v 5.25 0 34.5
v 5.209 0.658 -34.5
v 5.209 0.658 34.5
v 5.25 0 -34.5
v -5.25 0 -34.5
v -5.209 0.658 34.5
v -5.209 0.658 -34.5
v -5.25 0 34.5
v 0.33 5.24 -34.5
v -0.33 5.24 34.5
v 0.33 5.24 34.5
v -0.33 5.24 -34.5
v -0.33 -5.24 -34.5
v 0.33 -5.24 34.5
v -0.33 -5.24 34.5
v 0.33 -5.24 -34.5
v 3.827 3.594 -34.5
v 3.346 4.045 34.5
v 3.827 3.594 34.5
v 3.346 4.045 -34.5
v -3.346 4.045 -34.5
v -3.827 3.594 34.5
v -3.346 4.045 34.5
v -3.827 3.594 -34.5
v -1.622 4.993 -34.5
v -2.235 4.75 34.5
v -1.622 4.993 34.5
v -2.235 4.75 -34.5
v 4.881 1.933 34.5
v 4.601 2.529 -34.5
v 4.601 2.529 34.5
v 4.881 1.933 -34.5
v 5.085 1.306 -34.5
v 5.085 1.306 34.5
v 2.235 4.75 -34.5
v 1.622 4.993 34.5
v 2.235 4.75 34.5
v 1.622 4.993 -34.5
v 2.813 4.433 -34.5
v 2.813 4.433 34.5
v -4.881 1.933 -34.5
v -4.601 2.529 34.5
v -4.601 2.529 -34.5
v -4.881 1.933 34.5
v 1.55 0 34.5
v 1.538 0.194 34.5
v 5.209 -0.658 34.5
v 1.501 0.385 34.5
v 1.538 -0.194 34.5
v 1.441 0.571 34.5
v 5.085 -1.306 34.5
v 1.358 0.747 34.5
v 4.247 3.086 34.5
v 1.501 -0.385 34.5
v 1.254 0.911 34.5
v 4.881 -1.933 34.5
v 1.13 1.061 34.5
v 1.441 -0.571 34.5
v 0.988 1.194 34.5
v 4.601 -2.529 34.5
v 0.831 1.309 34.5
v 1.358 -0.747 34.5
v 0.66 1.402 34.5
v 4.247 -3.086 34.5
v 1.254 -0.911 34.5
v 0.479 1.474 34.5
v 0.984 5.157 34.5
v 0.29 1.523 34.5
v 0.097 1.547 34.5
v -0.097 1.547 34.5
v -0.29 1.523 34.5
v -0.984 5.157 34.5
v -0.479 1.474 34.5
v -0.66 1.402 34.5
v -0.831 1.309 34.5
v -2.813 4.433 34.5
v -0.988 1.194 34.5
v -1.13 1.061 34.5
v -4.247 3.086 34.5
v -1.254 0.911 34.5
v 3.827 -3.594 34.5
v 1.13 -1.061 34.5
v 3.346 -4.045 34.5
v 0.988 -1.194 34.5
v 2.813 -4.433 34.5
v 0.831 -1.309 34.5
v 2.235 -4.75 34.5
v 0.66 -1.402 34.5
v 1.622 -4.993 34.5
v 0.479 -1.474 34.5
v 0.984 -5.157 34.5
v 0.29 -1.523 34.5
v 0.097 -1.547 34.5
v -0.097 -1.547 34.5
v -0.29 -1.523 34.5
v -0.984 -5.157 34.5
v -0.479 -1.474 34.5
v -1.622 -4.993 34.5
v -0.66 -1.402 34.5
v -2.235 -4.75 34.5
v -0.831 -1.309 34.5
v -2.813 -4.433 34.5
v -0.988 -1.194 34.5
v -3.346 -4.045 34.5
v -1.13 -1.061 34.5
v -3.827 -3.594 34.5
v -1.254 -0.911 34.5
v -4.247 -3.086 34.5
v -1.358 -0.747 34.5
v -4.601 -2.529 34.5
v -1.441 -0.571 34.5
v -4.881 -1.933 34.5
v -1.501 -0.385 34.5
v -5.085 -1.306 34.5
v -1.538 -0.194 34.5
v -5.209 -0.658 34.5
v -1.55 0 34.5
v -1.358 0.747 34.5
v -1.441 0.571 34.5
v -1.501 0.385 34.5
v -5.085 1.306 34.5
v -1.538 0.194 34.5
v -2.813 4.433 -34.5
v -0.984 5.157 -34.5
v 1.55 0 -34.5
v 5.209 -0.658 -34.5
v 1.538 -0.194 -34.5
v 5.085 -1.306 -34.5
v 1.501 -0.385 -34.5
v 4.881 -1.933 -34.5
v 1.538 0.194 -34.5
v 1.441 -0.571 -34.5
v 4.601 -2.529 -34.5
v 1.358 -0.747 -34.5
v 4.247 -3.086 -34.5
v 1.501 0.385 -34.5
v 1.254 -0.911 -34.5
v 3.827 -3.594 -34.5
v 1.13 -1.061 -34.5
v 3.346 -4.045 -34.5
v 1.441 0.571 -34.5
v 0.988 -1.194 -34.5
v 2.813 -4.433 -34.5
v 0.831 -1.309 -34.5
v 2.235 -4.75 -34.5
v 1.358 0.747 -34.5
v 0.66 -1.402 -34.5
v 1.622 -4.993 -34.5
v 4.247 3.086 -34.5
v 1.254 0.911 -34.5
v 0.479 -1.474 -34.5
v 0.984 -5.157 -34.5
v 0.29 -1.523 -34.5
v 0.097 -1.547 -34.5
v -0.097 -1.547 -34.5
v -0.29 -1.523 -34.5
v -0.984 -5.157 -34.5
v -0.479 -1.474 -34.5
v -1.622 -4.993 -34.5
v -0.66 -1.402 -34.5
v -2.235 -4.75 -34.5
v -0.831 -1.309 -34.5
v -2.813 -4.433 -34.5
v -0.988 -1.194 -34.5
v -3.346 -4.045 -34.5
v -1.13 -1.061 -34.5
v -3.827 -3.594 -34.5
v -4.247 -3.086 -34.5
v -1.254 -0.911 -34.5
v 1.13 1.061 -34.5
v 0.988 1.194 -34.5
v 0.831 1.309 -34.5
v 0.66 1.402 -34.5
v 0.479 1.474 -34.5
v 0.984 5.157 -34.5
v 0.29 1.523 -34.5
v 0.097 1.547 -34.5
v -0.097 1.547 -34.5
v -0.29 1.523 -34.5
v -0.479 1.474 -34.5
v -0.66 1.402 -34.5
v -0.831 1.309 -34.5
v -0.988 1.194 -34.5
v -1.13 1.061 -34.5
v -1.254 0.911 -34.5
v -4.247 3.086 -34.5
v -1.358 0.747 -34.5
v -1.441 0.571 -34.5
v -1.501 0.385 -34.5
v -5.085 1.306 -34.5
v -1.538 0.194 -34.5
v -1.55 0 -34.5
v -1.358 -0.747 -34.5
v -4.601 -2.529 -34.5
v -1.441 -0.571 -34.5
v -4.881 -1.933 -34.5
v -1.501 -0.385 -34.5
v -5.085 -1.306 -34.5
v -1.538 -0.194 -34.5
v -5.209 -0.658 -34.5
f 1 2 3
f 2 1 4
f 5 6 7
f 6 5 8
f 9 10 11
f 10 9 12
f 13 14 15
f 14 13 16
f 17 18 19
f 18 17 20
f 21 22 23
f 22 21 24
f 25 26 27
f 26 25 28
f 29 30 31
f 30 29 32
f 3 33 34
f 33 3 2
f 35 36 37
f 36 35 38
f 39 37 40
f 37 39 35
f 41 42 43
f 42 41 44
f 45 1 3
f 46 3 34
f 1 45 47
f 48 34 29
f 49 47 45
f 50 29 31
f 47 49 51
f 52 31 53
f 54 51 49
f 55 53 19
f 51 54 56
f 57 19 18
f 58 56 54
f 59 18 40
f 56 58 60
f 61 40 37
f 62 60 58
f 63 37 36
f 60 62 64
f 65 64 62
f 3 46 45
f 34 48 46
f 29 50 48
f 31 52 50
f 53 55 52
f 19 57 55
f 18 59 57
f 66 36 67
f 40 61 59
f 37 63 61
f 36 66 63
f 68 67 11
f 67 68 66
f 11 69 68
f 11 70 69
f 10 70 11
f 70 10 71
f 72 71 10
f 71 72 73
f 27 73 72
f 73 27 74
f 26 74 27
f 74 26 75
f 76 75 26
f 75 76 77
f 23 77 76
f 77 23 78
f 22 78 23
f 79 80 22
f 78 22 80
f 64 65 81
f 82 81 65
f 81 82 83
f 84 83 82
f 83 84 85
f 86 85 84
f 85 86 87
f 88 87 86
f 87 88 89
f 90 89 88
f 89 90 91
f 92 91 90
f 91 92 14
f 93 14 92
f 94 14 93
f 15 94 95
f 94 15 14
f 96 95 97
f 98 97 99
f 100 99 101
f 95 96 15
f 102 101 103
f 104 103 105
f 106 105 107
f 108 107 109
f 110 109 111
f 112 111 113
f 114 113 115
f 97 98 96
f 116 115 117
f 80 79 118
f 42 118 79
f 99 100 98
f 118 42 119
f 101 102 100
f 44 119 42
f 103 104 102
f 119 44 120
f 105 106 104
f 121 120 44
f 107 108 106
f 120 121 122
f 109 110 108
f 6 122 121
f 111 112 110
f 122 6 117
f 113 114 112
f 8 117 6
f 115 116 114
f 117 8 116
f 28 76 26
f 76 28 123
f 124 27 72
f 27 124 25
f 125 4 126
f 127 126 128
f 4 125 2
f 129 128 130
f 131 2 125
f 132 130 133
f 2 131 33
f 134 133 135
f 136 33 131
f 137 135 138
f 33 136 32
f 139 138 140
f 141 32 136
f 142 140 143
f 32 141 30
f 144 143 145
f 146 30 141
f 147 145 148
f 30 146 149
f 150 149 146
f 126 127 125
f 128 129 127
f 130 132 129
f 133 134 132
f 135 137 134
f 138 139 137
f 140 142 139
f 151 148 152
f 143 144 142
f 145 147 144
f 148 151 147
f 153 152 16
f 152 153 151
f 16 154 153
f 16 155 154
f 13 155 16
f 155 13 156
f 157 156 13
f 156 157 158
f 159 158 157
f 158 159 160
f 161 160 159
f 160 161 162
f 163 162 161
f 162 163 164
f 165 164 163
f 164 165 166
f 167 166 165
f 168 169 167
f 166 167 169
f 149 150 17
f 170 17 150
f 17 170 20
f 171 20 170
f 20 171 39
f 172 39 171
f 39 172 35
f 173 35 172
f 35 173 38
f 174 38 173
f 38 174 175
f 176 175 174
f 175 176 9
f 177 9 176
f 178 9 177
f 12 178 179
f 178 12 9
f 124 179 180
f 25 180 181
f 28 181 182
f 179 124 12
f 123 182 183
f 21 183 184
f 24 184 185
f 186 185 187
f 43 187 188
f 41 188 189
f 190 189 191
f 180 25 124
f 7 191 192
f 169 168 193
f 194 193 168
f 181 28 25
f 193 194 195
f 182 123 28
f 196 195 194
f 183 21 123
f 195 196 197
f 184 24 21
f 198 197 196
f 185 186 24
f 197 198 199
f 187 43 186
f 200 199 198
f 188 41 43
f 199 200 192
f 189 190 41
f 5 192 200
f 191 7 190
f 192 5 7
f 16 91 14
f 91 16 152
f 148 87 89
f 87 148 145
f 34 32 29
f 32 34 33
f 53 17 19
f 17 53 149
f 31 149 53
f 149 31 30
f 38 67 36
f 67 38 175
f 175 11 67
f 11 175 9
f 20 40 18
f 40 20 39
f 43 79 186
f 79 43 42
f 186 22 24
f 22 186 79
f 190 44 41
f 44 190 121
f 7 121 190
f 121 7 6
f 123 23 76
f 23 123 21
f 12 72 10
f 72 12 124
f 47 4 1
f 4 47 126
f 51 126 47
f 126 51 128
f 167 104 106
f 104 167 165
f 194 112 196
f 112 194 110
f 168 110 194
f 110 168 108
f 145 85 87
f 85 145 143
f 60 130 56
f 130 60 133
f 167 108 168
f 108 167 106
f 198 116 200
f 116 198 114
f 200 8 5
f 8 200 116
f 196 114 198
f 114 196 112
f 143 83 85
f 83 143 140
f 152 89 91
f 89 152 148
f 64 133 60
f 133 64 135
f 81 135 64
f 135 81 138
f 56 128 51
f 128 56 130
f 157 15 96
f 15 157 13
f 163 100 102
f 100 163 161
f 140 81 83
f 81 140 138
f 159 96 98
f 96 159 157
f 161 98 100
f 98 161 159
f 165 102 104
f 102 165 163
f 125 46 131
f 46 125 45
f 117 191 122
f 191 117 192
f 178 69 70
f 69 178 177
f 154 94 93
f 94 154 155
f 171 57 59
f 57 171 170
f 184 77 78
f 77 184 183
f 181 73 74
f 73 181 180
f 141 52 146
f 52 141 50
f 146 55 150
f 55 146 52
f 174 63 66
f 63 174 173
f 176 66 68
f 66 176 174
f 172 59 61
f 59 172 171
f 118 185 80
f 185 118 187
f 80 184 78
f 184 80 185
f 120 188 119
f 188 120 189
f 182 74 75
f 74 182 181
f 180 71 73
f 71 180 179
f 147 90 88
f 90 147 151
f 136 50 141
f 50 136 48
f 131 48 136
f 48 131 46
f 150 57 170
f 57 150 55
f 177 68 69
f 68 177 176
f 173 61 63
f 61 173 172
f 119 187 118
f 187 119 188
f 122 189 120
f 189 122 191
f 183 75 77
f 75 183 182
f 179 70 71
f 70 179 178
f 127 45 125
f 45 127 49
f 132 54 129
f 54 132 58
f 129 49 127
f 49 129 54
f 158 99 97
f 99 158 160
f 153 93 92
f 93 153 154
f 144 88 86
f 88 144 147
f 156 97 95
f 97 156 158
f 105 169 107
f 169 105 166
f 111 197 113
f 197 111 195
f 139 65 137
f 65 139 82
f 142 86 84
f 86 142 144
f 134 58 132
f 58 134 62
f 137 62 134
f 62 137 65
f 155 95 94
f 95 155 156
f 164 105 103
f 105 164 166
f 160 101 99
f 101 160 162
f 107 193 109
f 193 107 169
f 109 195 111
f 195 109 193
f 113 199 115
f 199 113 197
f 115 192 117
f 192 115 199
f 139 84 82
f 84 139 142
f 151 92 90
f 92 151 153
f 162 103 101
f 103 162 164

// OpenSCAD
$fn = 50;


difference() {
	union() {
		translate(v = [0, 0, -34.5000000000]) {
			cylinder(h = 69, r = 5.2500000000);
		}
	}
	union() {
		translate(v = [0, 0, -100.0000000000]) {
			cylinder(h = 200, r = 1.5500000000);
		}
	}
}
